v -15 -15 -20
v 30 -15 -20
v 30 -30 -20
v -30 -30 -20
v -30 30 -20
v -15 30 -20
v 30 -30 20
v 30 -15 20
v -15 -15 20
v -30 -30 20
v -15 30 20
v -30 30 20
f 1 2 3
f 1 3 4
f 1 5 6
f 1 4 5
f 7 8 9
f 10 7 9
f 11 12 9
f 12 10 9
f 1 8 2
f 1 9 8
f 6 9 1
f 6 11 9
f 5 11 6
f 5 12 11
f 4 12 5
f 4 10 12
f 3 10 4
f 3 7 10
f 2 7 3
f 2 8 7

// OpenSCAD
// file: _common.scad
// orthographic 共用尺寸 / 解析度設定
// 所有物件外接立方控制在 ~80 mm，方便相機固定縮放
$fn = 64;  // 圓面解析度（影響 STL 大小，64 在視覺與大小取得平衡）
CHAMFER = 1.2;  // 標準導角尺寸
// main file
// L 角架（角鐵）：L 形截面沿 Z 軸延伸
// 俯視(XY→XZ in Three.js) = L 形 ✓
// 正視(XZ→XY in Three.js) = 矩形 ✓
// 側視(YZ)                 = 矩形 ✓
include <_common.scad>

translate([0, 0, -20]) linear_extrude(height = 40)
  polygon(points = [
    [-30, -30],   // bottom-left
    [ 30, -30],   // bottom-right
    [ 30, -15],   // inner bottom-right
    [-15, -15],   // inner corner
    [-15,  30],   // inner top
    [-30,  30]    // top-left
  ]);
